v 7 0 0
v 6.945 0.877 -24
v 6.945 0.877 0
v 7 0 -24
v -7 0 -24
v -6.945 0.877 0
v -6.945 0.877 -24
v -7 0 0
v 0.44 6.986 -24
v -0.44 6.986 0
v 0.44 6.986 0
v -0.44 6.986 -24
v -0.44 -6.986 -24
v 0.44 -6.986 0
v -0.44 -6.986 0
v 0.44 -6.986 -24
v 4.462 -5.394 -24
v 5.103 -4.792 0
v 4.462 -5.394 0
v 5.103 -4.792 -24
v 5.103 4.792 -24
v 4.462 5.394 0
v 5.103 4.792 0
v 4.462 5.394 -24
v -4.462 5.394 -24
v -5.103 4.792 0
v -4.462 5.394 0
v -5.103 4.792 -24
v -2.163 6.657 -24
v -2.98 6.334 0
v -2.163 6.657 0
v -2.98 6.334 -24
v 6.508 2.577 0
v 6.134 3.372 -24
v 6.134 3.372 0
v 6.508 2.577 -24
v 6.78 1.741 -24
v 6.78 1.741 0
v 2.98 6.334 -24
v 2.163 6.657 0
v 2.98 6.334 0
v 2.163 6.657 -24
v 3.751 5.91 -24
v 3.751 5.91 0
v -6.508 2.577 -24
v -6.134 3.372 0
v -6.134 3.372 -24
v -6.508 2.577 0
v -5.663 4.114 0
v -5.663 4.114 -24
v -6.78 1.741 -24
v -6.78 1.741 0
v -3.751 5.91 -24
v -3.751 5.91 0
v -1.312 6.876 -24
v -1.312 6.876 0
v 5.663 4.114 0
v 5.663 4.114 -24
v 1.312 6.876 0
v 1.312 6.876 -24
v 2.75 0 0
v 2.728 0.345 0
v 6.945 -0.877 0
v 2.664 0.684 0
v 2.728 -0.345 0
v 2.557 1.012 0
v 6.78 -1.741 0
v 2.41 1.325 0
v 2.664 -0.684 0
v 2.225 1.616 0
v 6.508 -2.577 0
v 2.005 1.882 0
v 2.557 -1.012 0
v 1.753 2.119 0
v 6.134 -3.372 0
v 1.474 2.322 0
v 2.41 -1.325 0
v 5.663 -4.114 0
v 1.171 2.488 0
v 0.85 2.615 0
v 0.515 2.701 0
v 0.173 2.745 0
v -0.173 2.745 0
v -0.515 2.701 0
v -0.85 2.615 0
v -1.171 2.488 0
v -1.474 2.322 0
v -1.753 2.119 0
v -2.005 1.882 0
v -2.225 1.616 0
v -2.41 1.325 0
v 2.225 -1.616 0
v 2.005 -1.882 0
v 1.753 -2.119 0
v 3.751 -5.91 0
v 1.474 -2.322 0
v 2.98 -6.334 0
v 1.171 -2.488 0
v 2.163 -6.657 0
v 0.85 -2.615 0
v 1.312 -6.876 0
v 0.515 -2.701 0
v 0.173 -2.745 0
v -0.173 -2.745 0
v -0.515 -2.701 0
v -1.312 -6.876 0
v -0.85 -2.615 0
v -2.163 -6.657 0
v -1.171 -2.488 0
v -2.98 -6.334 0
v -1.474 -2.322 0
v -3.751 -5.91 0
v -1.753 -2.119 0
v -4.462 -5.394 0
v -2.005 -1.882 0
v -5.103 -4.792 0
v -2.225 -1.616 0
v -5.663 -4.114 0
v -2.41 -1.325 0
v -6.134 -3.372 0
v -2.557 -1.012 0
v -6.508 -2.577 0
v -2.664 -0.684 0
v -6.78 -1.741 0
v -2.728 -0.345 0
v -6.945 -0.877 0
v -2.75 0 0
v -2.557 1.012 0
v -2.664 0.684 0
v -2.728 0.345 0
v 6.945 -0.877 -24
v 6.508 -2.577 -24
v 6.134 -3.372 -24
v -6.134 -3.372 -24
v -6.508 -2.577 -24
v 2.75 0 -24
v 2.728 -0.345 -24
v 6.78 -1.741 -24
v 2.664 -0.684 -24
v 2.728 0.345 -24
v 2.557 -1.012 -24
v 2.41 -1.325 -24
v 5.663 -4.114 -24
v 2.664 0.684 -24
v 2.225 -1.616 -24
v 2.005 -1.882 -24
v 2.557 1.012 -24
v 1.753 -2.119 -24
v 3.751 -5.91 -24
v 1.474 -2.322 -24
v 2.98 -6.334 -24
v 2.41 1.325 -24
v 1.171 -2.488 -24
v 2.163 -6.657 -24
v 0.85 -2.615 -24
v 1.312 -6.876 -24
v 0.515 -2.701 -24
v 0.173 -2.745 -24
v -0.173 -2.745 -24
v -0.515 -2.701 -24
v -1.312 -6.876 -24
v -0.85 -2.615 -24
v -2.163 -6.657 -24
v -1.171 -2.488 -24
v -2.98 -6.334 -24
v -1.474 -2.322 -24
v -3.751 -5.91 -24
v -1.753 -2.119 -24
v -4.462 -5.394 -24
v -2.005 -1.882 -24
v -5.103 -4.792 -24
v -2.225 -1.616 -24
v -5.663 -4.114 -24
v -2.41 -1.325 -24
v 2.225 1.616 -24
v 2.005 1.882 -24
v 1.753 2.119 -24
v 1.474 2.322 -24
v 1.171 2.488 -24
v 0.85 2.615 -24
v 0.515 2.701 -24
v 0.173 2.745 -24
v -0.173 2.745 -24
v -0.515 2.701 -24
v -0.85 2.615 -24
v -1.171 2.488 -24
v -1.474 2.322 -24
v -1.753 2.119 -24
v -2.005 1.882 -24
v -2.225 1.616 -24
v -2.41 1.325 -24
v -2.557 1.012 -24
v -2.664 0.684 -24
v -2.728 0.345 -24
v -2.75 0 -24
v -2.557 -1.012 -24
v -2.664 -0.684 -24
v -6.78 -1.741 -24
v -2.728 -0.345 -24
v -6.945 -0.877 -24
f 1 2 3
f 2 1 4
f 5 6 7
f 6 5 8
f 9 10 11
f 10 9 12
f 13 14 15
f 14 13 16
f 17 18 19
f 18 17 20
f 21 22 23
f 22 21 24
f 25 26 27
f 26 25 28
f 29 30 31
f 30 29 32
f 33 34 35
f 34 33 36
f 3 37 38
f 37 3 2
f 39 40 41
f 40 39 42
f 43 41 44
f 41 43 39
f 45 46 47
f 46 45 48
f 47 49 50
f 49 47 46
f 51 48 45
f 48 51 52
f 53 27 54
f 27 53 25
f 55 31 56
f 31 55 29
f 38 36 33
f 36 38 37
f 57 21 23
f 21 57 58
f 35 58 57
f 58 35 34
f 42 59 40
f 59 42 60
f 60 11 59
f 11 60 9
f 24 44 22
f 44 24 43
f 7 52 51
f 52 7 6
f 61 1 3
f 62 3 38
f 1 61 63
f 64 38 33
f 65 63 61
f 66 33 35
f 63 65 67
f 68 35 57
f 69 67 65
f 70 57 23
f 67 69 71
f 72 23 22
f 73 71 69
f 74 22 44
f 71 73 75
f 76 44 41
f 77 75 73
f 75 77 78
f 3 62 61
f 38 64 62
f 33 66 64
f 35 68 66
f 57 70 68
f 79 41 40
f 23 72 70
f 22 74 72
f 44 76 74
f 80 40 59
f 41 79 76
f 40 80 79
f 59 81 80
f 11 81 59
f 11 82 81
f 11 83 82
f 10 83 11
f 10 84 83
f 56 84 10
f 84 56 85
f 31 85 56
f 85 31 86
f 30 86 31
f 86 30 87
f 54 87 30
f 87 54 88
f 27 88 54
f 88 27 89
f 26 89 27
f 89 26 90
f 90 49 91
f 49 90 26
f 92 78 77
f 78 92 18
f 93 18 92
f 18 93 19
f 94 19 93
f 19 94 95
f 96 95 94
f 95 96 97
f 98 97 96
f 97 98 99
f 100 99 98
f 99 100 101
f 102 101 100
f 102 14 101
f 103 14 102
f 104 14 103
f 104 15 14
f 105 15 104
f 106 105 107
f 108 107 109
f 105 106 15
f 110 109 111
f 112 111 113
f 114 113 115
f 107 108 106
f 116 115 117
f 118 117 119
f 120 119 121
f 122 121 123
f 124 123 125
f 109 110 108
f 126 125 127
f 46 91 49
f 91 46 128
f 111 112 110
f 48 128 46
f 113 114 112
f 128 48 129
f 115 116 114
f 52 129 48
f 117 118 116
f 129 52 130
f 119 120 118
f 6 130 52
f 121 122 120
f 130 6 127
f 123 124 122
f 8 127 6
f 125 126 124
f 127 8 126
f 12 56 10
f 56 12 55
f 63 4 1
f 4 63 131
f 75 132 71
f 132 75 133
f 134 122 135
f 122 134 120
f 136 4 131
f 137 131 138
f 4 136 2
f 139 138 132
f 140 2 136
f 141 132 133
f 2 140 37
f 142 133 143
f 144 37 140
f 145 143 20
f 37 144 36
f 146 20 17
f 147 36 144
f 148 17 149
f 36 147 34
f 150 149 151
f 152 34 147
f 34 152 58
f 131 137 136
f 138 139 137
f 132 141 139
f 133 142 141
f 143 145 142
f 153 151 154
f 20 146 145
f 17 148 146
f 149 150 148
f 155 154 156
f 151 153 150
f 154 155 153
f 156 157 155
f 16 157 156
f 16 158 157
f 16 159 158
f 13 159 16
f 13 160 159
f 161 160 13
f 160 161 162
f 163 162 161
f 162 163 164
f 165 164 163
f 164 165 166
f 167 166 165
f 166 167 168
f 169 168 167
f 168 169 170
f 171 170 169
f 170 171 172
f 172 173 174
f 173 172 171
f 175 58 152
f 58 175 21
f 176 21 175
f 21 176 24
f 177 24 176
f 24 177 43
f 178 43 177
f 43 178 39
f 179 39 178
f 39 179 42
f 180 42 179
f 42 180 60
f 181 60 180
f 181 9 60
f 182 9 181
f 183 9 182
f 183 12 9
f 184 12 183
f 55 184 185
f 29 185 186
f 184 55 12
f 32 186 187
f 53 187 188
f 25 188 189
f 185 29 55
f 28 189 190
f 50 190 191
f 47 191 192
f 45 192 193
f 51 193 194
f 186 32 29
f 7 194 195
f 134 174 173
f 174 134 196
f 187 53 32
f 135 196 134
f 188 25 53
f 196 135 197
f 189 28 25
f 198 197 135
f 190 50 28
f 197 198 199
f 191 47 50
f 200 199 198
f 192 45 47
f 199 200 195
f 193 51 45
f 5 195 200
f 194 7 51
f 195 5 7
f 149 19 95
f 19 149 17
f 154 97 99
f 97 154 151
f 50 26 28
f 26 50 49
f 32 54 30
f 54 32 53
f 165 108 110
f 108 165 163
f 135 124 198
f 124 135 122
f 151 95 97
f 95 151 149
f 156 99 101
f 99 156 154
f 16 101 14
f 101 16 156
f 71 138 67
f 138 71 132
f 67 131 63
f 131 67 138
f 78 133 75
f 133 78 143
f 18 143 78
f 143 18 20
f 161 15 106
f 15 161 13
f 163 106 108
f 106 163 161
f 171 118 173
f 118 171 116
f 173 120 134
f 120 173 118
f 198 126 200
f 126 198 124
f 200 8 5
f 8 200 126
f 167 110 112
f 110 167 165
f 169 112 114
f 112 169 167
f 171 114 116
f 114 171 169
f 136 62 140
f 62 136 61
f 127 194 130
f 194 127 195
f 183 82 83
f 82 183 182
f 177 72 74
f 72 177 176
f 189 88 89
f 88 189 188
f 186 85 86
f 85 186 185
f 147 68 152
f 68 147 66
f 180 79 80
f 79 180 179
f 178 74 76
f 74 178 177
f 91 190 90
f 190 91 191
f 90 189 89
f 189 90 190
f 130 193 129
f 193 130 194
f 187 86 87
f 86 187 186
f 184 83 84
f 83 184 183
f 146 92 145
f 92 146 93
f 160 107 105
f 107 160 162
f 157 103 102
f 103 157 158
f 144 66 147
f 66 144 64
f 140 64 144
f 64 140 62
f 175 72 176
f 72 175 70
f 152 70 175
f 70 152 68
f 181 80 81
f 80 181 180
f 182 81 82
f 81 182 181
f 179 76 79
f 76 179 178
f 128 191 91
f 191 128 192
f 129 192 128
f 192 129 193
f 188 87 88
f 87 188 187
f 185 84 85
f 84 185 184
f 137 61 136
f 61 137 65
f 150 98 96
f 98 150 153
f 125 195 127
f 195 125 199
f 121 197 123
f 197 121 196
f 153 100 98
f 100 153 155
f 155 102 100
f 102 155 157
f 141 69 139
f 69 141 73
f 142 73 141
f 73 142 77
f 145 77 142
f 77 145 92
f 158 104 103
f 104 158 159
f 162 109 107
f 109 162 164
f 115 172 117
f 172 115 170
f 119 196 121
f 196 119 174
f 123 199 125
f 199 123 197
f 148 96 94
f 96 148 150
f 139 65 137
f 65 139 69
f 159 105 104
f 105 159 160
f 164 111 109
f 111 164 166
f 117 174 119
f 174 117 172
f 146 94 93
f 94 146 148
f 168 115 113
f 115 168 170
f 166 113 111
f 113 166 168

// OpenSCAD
$fn = 50;


difference() {
	union() {
		translate(v = [0, 0, -24.0000000000]) {
			cylinder(h = 24, r = 7.0000000000);
		}
	}
	union() {
		#translate(v = [0, 0, -24]) {
			cylinder(h = 24, r = 2.7500000000);
		}
	}
}
